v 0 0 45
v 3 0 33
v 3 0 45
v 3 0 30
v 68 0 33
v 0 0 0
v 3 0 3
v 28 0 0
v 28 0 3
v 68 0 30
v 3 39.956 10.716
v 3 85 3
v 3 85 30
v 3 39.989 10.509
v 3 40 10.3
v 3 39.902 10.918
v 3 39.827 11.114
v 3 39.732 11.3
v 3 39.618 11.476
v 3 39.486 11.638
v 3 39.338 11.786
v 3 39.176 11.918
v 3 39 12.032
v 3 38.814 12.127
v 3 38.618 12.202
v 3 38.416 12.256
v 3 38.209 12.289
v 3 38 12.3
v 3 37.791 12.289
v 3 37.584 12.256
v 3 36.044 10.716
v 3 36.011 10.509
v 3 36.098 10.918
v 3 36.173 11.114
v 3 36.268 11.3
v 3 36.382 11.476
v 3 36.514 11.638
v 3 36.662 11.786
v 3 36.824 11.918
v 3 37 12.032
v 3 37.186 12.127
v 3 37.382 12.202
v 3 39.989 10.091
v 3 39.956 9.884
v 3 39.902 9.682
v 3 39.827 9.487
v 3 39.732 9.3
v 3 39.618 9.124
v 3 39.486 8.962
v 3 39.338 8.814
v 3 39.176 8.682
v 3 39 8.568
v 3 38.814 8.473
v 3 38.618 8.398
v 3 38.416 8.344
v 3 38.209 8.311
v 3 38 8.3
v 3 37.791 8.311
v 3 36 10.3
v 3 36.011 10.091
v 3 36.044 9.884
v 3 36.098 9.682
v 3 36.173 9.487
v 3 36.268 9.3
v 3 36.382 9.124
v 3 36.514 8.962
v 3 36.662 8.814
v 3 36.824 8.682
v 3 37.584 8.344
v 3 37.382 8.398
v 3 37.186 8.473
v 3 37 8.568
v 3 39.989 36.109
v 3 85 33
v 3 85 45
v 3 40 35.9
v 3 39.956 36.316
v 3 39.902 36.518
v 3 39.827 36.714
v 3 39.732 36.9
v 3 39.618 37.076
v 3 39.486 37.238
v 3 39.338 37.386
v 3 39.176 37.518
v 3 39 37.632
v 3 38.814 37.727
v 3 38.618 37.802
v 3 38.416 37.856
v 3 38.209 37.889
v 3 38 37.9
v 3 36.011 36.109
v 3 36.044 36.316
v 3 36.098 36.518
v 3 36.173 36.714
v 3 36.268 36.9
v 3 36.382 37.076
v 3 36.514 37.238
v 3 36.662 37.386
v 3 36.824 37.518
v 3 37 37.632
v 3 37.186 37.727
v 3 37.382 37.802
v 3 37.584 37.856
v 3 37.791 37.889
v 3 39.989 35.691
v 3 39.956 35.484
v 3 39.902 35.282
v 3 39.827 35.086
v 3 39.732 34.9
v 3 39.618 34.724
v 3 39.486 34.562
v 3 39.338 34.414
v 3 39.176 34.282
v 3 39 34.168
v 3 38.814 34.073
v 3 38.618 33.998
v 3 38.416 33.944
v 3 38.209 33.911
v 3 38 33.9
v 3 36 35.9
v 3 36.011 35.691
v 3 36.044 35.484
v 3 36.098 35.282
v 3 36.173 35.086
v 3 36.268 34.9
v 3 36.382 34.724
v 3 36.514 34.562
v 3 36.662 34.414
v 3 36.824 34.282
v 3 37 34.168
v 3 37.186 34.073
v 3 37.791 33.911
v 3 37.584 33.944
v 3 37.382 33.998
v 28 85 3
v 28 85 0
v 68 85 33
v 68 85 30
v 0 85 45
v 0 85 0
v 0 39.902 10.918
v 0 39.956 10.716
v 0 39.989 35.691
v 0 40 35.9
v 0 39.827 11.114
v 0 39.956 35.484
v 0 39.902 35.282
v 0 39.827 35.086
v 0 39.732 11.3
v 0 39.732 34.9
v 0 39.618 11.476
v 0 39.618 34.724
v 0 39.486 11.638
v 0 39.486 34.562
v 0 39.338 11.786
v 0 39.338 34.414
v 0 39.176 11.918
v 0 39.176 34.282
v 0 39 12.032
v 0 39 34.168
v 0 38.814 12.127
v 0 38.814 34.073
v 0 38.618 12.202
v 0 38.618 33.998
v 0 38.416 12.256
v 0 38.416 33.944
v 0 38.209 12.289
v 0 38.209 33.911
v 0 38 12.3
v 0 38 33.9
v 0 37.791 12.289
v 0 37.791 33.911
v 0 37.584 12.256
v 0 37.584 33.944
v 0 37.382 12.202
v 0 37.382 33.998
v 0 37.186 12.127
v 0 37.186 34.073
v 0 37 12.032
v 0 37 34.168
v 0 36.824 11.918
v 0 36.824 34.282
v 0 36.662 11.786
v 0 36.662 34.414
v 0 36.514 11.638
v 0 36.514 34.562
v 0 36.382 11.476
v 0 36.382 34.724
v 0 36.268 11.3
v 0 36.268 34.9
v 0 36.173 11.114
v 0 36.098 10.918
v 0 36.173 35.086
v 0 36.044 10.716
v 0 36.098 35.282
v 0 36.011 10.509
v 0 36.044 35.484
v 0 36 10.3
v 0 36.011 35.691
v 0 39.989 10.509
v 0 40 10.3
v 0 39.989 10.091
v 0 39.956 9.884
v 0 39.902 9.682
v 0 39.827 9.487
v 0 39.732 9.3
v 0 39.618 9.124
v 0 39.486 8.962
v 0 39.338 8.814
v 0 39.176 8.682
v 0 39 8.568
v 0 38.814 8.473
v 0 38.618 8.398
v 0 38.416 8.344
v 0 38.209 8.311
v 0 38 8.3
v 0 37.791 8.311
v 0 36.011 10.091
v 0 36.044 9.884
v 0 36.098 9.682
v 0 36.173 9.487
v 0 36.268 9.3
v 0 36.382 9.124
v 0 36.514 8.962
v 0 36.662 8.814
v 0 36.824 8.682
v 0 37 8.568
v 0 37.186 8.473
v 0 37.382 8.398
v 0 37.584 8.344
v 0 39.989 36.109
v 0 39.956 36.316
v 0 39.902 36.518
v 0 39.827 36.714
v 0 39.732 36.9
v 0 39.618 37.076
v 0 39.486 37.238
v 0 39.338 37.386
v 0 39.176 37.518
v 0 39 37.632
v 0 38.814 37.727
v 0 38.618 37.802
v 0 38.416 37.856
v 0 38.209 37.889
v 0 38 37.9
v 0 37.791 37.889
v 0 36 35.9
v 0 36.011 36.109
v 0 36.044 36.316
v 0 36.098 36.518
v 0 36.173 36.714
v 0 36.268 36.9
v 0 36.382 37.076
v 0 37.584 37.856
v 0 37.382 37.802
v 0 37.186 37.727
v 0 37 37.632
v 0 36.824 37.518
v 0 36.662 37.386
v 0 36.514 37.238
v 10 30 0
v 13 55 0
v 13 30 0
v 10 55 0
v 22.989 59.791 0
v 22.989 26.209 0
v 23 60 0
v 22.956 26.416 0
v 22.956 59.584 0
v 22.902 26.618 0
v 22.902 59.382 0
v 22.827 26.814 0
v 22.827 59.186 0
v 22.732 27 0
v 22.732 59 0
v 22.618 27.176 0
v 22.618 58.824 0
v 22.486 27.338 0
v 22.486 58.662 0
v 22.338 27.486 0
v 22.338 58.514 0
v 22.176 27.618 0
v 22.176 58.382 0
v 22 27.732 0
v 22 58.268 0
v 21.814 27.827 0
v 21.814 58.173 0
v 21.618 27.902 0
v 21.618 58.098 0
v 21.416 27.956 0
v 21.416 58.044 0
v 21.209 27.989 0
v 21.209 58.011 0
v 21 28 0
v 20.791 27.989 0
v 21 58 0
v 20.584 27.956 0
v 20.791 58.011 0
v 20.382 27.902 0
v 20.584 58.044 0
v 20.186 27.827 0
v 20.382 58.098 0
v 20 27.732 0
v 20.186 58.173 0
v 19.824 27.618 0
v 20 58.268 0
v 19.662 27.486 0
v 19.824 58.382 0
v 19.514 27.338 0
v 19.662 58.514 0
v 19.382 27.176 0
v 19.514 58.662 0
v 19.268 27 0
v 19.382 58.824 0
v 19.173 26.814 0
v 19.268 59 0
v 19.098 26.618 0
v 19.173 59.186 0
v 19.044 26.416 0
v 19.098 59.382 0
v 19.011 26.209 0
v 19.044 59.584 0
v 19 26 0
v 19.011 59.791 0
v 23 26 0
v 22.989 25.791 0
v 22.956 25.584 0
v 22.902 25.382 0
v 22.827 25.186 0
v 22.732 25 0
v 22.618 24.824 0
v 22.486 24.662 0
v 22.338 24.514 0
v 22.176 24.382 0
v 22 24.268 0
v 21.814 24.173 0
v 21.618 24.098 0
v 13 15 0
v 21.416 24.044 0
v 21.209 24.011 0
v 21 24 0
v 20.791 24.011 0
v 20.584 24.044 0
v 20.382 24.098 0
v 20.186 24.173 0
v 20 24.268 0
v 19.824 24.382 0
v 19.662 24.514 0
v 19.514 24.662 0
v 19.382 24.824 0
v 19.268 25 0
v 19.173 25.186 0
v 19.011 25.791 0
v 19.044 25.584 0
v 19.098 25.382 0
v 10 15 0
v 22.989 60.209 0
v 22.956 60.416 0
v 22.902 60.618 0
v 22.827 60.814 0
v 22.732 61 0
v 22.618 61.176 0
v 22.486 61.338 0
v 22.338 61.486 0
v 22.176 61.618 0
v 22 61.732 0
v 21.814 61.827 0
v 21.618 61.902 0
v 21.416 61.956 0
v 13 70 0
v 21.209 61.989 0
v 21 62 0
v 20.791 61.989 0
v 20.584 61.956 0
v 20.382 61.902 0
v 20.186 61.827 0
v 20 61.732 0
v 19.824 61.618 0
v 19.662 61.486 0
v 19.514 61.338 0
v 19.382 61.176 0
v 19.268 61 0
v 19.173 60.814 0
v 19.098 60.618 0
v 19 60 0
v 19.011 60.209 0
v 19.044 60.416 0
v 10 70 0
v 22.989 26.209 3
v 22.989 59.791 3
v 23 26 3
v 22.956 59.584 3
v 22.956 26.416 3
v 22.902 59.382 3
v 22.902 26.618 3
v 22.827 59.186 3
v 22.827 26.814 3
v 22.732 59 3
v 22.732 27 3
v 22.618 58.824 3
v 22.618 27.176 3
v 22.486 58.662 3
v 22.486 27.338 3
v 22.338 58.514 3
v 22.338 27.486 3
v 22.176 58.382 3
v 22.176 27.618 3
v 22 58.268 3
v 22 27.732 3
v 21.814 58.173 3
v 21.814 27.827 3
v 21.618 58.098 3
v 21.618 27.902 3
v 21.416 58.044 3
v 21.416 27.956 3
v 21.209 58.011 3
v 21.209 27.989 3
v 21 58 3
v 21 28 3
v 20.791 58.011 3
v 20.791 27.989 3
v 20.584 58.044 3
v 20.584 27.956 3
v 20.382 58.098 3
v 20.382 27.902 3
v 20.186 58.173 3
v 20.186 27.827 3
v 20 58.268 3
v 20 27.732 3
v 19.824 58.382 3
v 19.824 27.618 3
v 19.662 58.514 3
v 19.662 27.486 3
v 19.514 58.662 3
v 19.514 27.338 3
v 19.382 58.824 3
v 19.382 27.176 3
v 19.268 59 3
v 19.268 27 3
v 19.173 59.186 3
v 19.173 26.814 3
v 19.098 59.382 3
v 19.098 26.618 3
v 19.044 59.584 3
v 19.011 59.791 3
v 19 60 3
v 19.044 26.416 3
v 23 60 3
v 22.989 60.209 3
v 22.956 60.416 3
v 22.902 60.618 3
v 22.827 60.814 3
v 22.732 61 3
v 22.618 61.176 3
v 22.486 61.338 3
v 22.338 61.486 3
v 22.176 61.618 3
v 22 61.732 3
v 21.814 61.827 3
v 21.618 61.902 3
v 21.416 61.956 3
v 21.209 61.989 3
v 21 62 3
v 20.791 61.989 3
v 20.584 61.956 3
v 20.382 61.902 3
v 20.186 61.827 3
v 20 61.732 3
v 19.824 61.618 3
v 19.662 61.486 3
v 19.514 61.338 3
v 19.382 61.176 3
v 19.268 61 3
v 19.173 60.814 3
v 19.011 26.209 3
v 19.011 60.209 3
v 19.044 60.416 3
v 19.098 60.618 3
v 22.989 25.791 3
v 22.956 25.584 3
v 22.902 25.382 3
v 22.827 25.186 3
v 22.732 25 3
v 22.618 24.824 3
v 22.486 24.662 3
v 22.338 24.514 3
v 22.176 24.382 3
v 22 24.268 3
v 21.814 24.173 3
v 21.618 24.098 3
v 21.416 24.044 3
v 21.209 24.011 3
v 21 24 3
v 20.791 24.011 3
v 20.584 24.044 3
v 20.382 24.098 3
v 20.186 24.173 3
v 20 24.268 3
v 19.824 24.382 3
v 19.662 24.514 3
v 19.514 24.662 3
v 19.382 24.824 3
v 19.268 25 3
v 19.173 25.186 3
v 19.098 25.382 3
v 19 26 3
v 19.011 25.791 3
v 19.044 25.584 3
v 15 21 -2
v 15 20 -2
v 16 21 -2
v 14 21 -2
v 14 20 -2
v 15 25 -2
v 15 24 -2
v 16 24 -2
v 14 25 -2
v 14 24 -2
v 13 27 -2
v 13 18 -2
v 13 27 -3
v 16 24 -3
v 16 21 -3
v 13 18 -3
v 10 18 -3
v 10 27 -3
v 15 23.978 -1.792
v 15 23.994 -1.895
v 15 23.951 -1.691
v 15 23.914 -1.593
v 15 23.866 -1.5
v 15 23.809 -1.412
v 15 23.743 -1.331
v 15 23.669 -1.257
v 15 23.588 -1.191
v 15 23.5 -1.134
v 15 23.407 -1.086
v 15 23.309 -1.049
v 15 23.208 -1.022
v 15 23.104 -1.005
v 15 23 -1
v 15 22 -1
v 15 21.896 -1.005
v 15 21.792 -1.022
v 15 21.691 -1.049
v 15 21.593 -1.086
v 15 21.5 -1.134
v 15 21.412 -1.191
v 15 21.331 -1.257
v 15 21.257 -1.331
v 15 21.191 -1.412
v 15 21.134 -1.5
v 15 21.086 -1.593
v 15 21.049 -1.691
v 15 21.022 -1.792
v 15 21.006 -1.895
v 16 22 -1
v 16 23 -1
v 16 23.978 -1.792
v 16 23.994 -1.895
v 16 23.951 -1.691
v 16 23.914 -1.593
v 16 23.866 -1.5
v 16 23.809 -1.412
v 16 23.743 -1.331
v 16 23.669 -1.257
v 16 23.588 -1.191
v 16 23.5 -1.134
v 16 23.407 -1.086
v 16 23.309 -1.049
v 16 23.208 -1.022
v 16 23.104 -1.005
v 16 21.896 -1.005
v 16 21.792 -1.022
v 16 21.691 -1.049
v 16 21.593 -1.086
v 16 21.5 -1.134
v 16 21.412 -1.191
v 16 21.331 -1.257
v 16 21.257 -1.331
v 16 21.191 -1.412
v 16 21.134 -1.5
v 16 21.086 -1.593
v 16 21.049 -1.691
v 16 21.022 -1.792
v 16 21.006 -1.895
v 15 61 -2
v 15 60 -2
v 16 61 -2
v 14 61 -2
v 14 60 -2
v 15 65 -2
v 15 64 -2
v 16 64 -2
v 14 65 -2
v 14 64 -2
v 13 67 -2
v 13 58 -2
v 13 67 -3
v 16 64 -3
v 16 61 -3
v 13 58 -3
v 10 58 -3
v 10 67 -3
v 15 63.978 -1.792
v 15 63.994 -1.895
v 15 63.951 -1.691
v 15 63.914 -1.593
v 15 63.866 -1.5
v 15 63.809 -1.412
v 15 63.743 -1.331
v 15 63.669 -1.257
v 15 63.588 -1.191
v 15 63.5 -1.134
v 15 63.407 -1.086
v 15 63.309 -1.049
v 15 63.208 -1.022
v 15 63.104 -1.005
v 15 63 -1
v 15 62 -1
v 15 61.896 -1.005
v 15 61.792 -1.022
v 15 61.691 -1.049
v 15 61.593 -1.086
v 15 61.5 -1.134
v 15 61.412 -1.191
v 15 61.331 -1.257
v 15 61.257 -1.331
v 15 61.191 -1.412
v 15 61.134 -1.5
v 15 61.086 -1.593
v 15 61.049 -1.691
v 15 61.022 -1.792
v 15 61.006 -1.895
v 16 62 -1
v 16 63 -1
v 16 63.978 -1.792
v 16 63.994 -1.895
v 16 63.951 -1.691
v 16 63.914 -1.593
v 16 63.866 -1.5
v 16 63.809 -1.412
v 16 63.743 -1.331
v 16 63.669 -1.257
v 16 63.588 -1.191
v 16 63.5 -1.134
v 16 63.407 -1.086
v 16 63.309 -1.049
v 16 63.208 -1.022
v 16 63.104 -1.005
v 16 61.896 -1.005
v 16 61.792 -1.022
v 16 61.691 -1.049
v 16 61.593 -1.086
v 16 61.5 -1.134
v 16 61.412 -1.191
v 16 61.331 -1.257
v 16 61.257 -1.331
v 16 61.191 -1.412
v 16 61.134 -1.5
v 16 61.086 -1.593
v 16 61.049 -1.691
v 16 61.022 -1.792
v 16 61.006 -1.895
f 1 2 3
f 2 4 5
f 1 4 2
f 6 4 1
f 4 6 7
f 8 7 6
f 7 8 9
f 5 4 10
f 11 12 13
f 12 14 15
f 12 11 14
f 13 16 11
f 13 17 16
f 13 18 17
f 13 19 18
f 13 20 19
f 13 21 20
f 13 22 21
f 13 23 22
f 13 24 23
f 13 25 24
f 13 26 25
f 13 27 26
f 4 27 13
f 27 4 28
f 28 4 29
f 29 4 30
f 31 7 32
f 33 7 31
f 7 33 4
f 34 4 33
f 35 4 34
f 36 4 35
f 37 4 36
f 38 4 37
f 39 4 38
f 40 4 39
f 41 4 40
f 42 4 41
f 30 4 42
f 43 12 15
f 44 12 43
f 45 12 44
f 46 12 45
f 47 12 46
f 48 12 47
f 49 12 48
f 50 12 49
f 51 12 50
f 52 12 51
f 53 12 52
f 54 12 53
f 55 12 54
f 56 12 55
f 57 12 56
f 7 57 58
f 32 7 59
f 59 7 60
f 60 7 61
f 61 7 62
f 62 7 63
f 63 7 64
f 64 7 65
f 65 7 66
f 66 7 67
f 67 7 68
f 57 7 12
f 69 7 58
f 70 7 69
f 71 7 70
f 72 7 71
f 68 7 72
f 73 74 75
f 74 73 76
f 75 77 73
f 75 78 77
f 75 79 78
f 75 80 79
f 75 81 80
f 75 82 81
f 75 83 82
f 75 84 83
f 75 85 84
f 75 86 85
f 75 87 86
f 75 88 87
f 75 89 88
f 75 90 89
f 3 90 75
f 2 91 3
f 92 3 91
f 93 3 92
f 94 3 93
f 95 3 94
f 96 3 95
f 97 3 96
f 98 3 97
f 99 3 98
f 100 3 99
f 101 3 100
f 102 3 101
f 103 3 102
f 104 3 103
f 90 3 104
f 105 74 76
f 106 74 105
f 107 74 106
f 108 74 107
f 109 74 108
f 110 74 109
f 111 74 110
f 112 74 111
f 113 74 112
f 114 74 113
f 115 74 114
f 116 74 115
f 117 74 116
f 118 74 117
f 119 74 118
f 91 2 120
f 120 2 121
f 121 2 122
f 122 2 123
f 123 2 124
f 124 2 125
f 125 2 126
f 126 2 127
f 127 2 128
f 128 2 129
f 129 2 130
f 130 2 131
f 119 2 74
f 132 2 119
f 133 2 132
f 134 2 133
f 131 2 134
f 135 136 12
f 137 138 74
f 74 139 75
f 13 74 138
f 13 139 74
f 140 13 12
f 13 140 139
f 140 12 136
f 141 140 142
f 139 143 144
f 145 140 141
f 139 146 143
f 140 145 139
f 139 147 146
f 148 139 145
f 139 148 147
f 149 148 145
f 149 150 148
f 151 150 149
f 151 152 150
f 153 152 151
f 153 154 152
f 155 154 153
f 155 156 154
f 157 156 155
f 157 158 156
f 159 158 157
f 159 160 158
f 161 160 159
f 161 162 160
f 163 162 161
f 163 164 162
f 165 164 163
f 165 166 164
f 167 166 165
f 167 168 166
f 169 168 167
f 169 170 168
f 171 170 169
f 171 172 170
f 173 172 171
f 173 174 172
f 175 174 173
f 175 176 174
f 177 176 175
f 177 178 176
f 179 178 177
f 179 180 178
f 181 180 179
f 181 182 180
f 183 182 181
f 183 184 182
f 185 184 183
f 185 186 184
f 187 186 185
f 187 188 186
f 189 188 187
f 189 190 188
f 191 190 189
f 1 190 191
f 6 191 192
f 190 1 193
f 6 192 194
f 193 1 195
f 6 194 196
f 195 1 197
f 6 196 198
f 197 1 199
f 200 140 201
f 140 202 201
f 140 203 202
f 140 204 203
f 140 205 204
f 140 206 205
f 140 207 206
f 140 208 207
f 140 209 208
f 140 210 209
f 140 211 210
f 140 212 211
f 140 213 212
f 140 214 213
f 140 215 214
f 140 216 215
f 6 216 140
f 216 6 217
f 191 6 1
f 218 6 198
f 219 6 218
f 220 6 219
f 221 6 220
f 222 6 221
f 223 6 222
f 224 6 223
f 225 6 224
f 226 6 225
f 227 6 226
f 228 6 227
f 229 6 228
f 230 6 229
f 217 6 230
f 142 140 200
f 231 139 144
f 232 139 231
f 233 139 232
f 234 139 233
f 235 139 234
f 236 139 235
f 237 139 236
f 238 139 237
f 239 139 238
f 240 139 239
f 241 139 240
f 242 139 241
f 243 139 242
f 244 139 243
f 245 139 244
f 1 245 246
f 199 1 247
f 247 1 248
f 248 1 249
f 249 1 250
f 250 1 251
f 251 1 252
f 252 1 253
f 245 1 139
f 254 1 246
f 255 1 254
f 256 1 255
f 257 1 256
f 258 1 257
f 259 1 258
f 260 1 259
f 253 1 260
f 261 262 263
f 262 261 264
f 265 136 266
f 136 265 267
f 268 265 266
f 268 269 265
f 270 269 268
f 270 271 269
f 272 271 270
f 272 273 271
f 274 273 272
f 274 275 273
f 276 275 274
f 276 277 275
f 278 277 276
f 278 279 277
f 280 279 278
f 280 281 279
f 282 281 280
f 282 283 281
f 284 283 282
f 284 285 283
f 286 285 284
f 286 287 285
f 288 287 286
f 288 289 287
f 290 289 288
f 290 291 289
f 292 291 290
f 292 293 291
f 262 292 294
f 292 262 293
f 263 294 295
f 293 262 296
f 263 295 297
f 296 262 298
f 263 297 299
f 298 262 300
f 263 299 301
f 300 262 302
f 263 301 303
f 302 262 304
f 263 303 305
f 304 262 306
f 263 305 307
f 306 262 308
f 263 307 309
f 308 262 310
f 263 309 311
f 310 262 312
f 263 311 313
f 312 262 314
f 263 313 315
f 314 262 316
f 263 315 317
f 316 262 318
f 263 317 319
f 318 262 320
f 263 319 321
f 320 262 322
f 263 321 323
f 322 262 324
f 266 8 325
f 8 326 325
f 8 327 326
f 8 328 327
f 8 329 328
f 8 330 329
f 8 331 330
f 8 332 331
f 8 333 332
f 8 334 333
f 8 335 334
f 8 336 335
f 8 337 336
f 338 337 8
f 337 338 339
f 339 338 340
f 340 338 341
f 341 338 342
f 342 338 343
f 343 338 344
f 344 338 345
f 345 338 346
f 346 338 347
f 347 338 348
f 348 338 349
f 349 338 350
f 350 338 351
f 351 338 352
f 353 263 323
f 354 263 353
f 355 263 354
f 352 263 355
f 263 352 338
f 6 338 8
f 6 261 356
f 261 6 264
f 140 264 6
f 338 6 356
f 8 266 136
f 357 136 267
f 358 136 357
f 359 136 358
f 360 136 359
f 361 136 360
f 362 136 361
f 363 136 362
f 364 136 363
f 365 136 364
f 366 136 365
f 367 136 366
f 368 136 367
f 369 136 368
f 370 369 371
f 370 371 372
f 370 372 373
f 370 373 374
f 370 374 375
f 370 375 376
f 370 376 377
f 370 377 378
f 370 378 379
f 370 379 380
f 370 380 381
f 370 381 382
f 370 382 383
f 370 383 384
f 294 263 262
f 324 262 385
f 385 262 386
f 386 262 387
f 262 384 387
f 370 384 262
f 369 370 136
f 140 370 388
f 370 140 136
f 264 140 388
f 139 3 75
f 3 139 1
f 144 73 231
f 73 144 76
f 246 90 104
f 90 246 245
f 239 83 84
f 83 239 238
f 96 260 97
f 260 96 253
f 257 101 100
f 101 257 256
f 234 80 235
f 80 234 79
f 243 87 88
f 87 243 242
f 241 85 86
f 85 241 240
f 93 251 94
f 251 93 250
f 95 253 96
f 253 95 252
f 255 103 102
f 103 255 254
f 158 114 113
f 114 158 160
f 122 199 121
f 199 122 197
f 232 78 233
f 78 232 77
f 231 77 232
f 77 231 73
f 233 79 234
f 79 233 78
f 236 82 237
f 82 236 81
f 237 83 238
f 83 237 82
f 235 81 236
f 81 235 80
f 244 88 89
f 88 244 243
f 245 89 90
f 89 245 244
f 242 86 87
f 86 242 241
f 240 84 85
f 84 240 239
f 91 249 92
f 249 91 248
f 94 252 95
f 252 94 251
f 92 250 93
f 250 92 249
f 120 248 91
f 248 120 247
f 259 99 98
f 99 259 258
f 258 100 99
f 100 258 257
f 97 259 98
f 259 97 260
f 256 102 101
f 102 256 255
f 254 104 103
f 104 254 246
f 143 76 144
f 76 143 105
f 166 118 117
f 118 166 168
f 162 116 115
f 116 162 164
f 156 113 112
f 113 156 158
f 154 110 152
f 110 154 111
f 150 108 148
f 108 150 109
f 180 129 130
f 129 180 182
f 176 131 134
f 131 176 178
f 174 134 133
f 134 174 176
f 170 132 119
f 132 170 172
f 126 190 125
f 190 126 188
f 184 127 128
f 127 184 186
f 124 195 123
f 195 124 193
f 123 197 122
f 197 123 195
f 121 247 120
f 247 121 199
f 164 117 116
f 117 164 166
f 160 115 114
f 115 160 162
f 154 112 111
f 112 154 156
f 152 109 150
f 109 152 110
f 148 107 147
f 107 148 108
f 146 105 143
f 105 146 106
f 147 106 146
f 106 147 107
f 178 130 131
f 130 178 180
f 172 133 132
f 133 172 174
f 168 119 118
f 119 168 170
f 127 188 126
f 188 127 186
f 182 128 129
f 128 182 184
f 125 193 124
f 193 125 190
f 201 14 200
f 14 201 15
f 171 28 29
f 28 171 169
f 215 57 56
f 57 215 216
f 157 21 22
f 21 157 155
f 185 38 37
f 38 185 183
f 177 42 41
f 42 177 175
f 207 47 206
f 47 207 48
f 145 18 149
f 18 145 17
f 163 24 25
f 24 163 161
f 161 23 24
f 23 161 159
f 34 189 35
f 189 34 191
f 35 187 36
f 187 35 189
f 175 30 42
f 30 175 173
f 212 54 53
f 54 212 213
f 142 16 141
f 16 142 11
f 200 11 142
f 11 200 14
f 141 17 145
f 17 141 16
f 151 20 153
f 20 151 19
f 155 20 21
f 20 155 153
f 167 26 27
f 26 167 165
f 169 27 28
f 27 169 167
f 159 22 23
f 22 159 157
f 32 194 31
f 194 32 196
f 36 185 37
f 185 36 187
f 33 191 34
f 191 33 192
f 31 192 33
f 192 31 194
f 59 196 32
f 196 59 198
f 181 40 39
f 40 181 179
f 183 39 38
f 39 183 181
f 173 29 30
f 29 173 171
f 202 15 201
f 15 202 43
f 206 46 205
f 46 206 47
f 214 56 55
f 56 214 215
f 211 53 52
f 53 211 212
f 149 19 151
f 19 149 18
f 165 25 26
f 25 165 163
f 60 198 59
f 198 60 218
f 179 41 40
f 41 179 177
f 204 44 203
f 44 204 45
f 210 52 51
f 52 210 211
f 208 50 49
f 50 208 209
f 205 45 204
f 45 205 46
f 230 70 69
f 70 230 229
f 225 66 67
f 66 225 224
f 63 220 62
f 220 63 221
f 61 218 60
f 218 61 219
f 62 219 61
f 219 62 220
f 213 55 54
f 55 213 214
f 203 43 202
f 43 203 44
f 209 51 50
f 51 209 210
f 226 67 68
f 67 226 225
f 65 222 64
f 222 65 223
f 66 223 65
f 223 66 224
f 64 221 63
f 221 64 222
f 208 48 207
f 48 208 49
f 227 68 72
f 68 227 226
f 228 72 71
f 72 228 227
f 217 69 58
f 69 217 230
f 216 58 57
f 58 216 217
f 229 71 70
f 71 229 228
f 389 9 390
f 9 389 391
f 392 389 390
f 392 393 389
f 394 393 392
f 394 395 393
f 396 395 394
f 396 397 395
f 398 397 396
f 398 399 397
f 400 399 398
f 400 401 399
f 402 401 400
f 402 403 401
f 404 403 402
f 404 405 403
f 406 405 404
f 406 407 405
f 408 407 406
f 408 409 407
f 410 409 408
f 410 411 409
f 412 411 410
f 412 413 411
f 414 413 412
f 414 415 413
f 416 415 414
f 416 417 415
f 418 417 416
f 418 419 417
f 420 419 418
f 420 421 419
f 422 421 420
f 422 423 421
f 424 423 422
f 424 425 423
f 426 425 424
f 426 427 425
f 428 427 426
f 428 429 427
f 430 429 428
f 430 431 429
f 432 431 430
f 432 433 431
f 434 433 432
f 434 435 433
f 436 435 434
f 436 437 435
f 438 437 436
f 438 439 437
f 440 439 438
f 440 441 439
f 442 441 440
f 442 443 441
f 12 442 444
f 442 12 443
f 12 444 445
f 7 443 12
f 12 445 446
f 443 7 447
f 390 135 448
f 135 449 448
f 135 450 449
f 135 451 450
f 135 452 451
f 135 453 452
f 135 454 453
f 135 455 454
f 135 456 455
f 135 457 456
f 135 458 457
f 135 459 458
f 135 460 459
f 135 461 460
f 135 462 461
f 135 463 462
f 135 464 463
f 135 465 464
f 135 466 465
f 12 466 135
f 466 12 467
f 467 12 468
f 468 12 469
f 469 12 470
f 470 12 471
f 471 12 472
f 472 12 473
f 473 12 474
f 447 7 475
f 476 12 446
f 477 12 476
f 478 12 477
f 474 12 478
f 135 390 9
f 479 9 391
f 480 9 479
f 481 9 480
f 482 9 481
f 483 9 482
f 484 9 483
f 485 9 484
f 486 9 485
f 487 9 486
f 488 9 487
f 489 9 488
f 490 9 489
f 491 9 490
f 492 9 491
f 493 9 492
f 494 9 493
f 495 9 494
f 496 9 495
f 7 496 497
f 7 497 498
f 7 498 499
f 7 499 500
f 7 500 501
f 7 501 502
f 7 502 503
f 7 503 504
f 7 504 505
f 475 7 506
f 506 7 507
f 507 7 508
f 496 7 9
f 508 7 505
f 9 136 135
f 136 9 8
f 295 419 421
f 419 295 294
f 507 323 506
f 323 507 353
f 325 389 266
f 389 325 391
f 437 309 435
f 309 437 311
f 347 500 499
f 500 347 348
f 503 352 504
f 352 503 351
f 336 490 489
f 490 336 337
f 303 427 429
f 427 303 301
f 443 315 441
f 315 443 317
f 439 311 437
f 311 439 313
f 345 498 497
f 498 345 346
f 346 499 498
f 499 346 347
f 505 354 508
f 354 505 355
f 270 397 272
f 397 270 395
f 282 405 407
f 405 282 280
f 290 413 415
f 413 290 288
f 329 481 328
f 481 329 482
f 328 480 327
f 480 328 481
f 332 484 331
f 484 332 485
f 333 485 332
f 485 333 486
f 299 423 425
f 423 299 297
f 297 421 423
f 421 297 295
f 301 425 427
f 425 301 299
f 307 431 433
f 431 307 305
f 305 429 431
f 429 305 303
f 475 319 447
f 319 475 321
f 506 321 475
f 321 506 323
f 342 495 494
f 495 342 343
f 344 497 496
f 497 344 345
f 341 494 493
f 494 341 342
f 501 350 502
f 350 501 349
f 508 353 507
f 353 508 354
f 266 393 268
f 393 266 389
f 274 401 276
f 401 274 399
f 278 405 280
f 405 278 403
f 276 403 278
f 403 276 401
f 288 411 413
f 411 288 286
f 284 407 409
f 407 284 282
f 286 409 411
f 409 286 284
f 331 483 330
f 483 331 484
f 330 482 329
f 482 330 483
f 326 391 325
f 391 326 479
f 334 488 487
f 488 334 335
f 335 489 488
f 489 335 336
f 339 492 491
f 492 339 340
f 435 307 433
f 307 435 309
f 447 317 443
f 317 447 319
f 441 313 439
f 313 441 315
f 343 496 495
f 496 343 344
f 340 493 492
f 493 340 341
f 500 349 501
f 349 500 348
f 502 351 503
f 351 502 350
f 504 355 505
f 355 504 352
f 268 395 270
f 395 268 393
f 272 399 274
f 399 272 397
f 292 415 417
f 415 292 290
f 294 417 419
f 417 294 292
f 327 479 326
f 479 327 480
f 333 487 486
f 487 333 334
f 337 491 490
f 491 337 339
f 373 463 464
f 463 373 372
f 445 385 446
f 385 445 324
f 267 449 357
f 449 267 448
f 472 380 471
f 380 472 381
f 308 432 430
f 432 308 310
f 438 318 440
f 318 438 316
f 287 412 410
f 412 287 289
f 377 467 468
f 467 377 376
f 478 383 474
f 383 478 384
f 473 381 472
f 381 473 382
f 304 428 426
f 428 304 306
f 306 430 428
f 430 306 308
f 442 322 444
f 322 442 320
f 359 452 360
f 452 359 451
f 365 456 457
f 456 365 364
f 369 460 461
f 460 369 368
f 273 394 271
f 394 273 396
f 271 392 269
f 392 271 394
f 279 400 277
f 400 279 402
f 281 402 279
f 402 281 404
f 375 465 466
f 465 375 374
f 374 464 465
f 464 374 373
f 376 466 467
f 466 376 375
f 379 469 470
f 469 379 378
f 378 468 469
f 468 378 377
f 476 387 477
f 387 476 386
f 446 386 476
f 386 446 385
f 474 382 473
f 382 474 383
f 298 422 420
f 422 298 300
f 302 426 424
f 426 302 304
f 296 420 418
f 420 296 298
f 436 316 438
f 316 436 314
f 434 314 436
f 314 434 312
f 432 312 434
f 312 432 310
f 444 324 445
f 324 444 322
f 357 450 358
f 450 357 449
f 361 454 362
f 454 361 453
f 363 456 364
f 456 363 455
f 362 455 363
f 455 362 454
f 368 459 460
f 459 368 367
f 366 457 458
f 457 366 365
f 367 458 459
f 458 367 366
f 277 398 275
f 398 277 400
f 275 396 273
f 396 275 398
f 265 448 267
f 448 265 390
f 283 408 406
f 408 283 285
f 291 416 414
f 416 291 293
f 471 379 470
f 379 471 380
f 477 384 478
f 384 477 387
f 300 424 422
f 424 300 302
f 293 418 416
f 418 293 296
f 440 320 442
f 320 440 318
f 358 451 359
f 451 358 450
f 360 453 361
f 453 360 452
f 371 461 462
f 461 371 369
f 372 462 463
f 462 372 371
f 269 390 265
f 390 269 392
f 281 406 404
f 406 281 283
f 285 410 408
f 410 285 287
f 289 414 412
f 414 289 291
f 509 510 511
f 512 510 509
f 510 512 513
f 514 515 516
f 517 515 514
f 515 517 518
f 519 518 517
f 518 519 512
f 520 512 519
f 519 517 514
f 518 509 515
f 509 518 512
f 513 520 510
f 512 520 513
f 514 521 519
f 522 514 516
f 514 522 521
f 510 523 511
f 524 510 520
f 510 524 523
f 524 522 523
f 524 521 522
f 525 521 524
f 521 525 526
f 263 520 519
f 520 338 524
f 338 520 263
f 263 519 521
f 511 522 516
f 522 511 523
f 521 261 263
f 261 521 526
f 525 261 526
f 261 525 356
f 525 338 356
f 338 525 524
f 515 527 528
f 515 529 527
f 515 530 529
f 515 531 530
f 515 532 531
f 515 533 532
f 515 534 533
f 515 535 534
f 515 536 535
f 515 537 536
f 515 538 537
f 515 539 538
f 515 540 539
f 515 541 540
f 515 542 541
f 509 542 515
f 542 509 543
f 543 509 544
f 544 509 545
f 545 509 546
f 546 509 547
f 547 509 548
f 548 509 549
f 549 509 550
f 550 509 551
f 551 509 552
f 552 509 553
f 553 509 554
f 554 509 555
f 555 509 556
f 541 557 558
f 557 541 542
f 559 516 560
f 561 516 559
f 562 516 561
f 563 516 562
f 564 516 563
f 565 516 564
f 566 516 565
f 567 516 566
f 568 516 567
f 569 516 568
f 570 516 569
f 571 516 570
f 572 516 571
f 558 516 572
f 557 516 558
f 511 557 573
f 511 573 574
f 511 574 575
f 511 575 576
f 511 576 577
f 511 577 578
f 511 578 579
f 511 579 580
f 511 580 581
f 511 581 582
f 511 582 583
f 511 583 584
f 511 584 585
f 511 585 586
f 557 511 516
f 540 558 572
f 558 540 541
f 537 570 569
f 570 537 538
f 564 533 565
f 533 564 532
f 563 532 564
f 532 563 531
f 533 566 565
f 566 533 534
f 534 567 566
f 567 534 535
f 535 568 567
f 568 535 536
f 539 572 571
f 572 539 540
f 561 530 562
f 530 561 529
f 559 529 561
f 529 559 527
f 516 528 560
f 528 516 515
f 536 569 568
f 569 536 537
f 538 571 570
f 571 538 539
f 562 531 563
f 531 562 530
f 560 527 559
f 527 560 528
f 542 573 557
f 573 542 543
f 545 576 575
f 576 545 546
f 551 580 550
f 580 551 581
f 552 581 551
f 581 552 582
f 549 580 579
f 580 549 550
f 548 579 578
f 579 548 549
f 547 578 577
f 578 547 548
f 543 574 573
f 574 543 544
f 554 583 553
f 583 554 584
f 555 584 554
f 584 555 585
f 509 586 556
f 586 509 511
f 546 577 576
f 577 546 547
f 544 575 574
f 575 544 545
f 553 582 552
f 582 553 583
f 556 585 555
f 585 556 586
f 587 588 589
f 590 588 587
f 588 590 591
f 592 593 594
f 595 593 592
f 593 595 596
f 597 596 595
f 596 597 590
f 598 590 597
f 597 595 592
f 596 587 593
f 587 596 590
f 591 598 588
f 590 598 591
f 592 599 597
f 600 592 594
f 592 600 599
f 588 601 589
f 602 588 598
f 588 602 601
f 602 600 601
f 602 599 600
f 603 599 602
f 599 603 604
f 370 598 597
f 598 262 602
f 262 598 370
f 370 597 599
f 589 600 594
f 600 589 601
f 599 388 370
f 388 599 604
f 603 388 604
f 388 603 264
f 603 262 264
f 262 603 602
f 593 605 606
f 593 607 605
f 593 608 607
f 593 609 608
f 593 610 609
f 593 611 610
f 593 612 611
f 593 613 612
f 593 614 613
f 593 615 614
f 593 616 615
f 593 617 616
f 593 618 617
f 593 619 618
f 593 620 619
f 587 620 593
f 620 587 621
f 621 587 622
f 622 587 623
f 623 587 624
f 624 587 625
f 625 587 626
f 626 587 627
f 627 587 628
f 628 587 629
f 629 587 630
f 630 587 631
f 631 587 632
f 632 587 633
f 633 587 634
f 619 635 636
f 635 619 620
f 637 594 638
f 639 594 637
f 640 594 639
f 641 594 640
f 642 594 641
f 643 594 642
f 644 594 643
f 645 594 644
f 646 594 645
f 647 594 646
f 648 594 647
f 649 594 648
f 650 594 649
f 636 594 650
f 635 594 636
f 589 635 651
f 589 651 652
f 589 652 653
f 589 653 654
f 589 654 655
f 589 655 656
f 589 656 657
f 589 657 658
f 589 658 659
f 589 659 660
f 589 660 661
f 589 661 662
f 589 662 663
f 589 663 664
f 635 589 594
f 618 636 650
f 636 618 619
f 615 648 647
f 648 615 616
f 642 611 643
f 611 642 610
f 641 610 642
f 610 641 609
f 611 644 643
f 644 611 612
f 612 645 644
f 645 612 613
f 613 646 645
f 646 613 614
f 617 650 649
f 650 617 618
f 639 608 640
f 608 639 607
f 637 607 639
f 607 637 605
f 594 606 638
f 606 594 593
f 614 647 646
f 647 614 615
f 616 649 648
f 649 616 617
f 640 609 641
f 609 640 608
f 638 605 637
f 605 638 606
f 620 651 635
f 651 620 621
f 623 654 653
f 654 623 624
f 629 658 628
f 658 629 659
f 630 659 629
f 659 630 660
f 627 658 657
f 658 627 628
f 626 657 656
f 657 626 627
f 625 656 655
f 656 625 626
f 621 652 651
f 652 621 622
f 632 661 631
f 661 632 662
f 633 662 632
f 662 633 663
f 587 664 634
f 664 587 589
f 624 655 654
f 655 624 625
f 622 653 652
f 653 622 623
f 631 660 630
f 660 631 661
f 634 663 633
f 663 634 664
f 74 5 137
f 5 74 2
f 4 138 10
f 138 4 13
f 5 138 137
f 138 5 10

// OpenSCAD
$fn = 60;

_holeDiameter = 4;

_length = 85;
_height = 45;
_thickness = 3;

_holeSpace = 25.6;
_holeOffset = 38;
_hole1TopDistance = 9.1;
_hole2TopDistance = _holeSpace + _hole1TopDistance;

_circuitLength = 35;
_holeWall = 1;
_bottomBaseWidth = 25;
_bottomBaseHoleBottomDistance = 7;
_bottomBaseHole1Distance = 25 + _holeWall;
_bottomBaseHole2Distance = _bottomBaseHole1Distance + _circuitLength - _holeWall;

_topBaseWidth = 65;

_supportThickness = 3;

fullPiece();

module fullPiece()
{
    rotate([ 90, 0, 90 ]) backPlate();
    translate([ _bottomBaseWidth + _thickness, 0, 0 ]) rotate([ 0, 0, 90 ])
        bottomBase(_bottomBaseHoleBottomDistance, _bottomBaseHole1Distance, _bottomBaseHole2Distance);
    translate([ _topBaseWidth + _thickness, 0, 27+_supportThickness ]) rotate([ 0, 0, 90 ]) topBase();
}

module backPlate() //_length, _height, _thickness, _holeOffset, _hole1TopDistance, _hole2TopDistance, _holeDiameter)
{
    difference()
    {
        cube([ _length, _height, _thickness ]);

        translate([ _holeOffset, _height - _hole1TopDistance, -1 ]) cylinder(h = _thickness + 2, r = _holeDiameter / 2);
        translate([ _holeOffset, _height - _hole2TopDistance, -1 ]) cylinder(h = _thickness + 2, r = _holeDiameter / 2);
    }
}

module bottomBase(hbdist, h1dist, h2dist)
{
    difference()
    {
        cube([ _length, _bottomBaseWidth, _thickness ]);

        translate([ h1dist, hbdist, -1 ]) cylinder(h = _thickness + 2, r = _holeDiameter / 2);
        translate([ h2dist, hbdist, -1 ]) cylinder(h = _thickness + 2, r = _holeDiameter / 2);
    }
    translate([ _supportThickness * 10, _bottomBaseWidth - 10, 0 ]) rotate([ 0, 180, 0 ])
        cableHolder(_supportThickness);
    translate([ _length - (_supportThickness * 5), _bottomBaseWidth - 10, 0 ]) rotate([ 0, 180, 0 ])
        cableHolder(_supportThickness);
}

_holderThickness = 1;
_shorting = 1.5;
module cableHolder(t = 3)
{
    difference()
    {
        union()
        {
            rotate([ -90, 0, 0 ]) linear_extrude(t) polygon([ [ 0, 0 ], [ t, 0 ], [ t, -t ] ]);
            translate([ t, 0, 0 ]) cube([ t * 3, t, t ]);
            rotate([ -90, 0, 0 ]) linear_extrude(t) polygon([[t * 4, 0], [t * 5, 0], [t * 4, -t]]);
            difference()
            {
                translate([ 0, 0, t - _holderThickness ]) linear_extrude(_holderThickness)
                    polygon([[t, 0], [t * 4, 0], [t * 2.5, -(t * 1.5)]]);
                translate([ 0, -(t * 1.5) - 0.5, t - _holderThickness - 1 ])
                    cube([ t * 5, _shorting + 0.5, _holderThickness + 2 ]);
            }
            _pos = t * 1.5 - _shorting;
            translate([ t*2, -t, t - (_holderThickness * 2) ]) cube([ t, _holderThickness, _holderThickness ]);
        }

        translate([t*2,-t-_holderThickness,t-(_holderThickness * 2)]) pacman(_holderThickness+2);
        translate([t*3,-t-_holderThickness,t-(_holderThickness * 2)]) mirror([1,0,0]) pacman(_holderThickness+2);
    }
}

module pacman(_h = 3, _r = 1)
{
    translate([_r,_h,_r])
    rotate([90,0,0])
    difference()
    {
        translate([ -_r-1, -_r-1, 0 ]) cube([ _r+1, _r+1, _h ]);
        translate([ 0, 0, -1 ]) cylinder(h = _h+2, r = _r);
    }
}

module topBase()
{
    cube([_length,_topBaseWidth,_thickness]);
}
